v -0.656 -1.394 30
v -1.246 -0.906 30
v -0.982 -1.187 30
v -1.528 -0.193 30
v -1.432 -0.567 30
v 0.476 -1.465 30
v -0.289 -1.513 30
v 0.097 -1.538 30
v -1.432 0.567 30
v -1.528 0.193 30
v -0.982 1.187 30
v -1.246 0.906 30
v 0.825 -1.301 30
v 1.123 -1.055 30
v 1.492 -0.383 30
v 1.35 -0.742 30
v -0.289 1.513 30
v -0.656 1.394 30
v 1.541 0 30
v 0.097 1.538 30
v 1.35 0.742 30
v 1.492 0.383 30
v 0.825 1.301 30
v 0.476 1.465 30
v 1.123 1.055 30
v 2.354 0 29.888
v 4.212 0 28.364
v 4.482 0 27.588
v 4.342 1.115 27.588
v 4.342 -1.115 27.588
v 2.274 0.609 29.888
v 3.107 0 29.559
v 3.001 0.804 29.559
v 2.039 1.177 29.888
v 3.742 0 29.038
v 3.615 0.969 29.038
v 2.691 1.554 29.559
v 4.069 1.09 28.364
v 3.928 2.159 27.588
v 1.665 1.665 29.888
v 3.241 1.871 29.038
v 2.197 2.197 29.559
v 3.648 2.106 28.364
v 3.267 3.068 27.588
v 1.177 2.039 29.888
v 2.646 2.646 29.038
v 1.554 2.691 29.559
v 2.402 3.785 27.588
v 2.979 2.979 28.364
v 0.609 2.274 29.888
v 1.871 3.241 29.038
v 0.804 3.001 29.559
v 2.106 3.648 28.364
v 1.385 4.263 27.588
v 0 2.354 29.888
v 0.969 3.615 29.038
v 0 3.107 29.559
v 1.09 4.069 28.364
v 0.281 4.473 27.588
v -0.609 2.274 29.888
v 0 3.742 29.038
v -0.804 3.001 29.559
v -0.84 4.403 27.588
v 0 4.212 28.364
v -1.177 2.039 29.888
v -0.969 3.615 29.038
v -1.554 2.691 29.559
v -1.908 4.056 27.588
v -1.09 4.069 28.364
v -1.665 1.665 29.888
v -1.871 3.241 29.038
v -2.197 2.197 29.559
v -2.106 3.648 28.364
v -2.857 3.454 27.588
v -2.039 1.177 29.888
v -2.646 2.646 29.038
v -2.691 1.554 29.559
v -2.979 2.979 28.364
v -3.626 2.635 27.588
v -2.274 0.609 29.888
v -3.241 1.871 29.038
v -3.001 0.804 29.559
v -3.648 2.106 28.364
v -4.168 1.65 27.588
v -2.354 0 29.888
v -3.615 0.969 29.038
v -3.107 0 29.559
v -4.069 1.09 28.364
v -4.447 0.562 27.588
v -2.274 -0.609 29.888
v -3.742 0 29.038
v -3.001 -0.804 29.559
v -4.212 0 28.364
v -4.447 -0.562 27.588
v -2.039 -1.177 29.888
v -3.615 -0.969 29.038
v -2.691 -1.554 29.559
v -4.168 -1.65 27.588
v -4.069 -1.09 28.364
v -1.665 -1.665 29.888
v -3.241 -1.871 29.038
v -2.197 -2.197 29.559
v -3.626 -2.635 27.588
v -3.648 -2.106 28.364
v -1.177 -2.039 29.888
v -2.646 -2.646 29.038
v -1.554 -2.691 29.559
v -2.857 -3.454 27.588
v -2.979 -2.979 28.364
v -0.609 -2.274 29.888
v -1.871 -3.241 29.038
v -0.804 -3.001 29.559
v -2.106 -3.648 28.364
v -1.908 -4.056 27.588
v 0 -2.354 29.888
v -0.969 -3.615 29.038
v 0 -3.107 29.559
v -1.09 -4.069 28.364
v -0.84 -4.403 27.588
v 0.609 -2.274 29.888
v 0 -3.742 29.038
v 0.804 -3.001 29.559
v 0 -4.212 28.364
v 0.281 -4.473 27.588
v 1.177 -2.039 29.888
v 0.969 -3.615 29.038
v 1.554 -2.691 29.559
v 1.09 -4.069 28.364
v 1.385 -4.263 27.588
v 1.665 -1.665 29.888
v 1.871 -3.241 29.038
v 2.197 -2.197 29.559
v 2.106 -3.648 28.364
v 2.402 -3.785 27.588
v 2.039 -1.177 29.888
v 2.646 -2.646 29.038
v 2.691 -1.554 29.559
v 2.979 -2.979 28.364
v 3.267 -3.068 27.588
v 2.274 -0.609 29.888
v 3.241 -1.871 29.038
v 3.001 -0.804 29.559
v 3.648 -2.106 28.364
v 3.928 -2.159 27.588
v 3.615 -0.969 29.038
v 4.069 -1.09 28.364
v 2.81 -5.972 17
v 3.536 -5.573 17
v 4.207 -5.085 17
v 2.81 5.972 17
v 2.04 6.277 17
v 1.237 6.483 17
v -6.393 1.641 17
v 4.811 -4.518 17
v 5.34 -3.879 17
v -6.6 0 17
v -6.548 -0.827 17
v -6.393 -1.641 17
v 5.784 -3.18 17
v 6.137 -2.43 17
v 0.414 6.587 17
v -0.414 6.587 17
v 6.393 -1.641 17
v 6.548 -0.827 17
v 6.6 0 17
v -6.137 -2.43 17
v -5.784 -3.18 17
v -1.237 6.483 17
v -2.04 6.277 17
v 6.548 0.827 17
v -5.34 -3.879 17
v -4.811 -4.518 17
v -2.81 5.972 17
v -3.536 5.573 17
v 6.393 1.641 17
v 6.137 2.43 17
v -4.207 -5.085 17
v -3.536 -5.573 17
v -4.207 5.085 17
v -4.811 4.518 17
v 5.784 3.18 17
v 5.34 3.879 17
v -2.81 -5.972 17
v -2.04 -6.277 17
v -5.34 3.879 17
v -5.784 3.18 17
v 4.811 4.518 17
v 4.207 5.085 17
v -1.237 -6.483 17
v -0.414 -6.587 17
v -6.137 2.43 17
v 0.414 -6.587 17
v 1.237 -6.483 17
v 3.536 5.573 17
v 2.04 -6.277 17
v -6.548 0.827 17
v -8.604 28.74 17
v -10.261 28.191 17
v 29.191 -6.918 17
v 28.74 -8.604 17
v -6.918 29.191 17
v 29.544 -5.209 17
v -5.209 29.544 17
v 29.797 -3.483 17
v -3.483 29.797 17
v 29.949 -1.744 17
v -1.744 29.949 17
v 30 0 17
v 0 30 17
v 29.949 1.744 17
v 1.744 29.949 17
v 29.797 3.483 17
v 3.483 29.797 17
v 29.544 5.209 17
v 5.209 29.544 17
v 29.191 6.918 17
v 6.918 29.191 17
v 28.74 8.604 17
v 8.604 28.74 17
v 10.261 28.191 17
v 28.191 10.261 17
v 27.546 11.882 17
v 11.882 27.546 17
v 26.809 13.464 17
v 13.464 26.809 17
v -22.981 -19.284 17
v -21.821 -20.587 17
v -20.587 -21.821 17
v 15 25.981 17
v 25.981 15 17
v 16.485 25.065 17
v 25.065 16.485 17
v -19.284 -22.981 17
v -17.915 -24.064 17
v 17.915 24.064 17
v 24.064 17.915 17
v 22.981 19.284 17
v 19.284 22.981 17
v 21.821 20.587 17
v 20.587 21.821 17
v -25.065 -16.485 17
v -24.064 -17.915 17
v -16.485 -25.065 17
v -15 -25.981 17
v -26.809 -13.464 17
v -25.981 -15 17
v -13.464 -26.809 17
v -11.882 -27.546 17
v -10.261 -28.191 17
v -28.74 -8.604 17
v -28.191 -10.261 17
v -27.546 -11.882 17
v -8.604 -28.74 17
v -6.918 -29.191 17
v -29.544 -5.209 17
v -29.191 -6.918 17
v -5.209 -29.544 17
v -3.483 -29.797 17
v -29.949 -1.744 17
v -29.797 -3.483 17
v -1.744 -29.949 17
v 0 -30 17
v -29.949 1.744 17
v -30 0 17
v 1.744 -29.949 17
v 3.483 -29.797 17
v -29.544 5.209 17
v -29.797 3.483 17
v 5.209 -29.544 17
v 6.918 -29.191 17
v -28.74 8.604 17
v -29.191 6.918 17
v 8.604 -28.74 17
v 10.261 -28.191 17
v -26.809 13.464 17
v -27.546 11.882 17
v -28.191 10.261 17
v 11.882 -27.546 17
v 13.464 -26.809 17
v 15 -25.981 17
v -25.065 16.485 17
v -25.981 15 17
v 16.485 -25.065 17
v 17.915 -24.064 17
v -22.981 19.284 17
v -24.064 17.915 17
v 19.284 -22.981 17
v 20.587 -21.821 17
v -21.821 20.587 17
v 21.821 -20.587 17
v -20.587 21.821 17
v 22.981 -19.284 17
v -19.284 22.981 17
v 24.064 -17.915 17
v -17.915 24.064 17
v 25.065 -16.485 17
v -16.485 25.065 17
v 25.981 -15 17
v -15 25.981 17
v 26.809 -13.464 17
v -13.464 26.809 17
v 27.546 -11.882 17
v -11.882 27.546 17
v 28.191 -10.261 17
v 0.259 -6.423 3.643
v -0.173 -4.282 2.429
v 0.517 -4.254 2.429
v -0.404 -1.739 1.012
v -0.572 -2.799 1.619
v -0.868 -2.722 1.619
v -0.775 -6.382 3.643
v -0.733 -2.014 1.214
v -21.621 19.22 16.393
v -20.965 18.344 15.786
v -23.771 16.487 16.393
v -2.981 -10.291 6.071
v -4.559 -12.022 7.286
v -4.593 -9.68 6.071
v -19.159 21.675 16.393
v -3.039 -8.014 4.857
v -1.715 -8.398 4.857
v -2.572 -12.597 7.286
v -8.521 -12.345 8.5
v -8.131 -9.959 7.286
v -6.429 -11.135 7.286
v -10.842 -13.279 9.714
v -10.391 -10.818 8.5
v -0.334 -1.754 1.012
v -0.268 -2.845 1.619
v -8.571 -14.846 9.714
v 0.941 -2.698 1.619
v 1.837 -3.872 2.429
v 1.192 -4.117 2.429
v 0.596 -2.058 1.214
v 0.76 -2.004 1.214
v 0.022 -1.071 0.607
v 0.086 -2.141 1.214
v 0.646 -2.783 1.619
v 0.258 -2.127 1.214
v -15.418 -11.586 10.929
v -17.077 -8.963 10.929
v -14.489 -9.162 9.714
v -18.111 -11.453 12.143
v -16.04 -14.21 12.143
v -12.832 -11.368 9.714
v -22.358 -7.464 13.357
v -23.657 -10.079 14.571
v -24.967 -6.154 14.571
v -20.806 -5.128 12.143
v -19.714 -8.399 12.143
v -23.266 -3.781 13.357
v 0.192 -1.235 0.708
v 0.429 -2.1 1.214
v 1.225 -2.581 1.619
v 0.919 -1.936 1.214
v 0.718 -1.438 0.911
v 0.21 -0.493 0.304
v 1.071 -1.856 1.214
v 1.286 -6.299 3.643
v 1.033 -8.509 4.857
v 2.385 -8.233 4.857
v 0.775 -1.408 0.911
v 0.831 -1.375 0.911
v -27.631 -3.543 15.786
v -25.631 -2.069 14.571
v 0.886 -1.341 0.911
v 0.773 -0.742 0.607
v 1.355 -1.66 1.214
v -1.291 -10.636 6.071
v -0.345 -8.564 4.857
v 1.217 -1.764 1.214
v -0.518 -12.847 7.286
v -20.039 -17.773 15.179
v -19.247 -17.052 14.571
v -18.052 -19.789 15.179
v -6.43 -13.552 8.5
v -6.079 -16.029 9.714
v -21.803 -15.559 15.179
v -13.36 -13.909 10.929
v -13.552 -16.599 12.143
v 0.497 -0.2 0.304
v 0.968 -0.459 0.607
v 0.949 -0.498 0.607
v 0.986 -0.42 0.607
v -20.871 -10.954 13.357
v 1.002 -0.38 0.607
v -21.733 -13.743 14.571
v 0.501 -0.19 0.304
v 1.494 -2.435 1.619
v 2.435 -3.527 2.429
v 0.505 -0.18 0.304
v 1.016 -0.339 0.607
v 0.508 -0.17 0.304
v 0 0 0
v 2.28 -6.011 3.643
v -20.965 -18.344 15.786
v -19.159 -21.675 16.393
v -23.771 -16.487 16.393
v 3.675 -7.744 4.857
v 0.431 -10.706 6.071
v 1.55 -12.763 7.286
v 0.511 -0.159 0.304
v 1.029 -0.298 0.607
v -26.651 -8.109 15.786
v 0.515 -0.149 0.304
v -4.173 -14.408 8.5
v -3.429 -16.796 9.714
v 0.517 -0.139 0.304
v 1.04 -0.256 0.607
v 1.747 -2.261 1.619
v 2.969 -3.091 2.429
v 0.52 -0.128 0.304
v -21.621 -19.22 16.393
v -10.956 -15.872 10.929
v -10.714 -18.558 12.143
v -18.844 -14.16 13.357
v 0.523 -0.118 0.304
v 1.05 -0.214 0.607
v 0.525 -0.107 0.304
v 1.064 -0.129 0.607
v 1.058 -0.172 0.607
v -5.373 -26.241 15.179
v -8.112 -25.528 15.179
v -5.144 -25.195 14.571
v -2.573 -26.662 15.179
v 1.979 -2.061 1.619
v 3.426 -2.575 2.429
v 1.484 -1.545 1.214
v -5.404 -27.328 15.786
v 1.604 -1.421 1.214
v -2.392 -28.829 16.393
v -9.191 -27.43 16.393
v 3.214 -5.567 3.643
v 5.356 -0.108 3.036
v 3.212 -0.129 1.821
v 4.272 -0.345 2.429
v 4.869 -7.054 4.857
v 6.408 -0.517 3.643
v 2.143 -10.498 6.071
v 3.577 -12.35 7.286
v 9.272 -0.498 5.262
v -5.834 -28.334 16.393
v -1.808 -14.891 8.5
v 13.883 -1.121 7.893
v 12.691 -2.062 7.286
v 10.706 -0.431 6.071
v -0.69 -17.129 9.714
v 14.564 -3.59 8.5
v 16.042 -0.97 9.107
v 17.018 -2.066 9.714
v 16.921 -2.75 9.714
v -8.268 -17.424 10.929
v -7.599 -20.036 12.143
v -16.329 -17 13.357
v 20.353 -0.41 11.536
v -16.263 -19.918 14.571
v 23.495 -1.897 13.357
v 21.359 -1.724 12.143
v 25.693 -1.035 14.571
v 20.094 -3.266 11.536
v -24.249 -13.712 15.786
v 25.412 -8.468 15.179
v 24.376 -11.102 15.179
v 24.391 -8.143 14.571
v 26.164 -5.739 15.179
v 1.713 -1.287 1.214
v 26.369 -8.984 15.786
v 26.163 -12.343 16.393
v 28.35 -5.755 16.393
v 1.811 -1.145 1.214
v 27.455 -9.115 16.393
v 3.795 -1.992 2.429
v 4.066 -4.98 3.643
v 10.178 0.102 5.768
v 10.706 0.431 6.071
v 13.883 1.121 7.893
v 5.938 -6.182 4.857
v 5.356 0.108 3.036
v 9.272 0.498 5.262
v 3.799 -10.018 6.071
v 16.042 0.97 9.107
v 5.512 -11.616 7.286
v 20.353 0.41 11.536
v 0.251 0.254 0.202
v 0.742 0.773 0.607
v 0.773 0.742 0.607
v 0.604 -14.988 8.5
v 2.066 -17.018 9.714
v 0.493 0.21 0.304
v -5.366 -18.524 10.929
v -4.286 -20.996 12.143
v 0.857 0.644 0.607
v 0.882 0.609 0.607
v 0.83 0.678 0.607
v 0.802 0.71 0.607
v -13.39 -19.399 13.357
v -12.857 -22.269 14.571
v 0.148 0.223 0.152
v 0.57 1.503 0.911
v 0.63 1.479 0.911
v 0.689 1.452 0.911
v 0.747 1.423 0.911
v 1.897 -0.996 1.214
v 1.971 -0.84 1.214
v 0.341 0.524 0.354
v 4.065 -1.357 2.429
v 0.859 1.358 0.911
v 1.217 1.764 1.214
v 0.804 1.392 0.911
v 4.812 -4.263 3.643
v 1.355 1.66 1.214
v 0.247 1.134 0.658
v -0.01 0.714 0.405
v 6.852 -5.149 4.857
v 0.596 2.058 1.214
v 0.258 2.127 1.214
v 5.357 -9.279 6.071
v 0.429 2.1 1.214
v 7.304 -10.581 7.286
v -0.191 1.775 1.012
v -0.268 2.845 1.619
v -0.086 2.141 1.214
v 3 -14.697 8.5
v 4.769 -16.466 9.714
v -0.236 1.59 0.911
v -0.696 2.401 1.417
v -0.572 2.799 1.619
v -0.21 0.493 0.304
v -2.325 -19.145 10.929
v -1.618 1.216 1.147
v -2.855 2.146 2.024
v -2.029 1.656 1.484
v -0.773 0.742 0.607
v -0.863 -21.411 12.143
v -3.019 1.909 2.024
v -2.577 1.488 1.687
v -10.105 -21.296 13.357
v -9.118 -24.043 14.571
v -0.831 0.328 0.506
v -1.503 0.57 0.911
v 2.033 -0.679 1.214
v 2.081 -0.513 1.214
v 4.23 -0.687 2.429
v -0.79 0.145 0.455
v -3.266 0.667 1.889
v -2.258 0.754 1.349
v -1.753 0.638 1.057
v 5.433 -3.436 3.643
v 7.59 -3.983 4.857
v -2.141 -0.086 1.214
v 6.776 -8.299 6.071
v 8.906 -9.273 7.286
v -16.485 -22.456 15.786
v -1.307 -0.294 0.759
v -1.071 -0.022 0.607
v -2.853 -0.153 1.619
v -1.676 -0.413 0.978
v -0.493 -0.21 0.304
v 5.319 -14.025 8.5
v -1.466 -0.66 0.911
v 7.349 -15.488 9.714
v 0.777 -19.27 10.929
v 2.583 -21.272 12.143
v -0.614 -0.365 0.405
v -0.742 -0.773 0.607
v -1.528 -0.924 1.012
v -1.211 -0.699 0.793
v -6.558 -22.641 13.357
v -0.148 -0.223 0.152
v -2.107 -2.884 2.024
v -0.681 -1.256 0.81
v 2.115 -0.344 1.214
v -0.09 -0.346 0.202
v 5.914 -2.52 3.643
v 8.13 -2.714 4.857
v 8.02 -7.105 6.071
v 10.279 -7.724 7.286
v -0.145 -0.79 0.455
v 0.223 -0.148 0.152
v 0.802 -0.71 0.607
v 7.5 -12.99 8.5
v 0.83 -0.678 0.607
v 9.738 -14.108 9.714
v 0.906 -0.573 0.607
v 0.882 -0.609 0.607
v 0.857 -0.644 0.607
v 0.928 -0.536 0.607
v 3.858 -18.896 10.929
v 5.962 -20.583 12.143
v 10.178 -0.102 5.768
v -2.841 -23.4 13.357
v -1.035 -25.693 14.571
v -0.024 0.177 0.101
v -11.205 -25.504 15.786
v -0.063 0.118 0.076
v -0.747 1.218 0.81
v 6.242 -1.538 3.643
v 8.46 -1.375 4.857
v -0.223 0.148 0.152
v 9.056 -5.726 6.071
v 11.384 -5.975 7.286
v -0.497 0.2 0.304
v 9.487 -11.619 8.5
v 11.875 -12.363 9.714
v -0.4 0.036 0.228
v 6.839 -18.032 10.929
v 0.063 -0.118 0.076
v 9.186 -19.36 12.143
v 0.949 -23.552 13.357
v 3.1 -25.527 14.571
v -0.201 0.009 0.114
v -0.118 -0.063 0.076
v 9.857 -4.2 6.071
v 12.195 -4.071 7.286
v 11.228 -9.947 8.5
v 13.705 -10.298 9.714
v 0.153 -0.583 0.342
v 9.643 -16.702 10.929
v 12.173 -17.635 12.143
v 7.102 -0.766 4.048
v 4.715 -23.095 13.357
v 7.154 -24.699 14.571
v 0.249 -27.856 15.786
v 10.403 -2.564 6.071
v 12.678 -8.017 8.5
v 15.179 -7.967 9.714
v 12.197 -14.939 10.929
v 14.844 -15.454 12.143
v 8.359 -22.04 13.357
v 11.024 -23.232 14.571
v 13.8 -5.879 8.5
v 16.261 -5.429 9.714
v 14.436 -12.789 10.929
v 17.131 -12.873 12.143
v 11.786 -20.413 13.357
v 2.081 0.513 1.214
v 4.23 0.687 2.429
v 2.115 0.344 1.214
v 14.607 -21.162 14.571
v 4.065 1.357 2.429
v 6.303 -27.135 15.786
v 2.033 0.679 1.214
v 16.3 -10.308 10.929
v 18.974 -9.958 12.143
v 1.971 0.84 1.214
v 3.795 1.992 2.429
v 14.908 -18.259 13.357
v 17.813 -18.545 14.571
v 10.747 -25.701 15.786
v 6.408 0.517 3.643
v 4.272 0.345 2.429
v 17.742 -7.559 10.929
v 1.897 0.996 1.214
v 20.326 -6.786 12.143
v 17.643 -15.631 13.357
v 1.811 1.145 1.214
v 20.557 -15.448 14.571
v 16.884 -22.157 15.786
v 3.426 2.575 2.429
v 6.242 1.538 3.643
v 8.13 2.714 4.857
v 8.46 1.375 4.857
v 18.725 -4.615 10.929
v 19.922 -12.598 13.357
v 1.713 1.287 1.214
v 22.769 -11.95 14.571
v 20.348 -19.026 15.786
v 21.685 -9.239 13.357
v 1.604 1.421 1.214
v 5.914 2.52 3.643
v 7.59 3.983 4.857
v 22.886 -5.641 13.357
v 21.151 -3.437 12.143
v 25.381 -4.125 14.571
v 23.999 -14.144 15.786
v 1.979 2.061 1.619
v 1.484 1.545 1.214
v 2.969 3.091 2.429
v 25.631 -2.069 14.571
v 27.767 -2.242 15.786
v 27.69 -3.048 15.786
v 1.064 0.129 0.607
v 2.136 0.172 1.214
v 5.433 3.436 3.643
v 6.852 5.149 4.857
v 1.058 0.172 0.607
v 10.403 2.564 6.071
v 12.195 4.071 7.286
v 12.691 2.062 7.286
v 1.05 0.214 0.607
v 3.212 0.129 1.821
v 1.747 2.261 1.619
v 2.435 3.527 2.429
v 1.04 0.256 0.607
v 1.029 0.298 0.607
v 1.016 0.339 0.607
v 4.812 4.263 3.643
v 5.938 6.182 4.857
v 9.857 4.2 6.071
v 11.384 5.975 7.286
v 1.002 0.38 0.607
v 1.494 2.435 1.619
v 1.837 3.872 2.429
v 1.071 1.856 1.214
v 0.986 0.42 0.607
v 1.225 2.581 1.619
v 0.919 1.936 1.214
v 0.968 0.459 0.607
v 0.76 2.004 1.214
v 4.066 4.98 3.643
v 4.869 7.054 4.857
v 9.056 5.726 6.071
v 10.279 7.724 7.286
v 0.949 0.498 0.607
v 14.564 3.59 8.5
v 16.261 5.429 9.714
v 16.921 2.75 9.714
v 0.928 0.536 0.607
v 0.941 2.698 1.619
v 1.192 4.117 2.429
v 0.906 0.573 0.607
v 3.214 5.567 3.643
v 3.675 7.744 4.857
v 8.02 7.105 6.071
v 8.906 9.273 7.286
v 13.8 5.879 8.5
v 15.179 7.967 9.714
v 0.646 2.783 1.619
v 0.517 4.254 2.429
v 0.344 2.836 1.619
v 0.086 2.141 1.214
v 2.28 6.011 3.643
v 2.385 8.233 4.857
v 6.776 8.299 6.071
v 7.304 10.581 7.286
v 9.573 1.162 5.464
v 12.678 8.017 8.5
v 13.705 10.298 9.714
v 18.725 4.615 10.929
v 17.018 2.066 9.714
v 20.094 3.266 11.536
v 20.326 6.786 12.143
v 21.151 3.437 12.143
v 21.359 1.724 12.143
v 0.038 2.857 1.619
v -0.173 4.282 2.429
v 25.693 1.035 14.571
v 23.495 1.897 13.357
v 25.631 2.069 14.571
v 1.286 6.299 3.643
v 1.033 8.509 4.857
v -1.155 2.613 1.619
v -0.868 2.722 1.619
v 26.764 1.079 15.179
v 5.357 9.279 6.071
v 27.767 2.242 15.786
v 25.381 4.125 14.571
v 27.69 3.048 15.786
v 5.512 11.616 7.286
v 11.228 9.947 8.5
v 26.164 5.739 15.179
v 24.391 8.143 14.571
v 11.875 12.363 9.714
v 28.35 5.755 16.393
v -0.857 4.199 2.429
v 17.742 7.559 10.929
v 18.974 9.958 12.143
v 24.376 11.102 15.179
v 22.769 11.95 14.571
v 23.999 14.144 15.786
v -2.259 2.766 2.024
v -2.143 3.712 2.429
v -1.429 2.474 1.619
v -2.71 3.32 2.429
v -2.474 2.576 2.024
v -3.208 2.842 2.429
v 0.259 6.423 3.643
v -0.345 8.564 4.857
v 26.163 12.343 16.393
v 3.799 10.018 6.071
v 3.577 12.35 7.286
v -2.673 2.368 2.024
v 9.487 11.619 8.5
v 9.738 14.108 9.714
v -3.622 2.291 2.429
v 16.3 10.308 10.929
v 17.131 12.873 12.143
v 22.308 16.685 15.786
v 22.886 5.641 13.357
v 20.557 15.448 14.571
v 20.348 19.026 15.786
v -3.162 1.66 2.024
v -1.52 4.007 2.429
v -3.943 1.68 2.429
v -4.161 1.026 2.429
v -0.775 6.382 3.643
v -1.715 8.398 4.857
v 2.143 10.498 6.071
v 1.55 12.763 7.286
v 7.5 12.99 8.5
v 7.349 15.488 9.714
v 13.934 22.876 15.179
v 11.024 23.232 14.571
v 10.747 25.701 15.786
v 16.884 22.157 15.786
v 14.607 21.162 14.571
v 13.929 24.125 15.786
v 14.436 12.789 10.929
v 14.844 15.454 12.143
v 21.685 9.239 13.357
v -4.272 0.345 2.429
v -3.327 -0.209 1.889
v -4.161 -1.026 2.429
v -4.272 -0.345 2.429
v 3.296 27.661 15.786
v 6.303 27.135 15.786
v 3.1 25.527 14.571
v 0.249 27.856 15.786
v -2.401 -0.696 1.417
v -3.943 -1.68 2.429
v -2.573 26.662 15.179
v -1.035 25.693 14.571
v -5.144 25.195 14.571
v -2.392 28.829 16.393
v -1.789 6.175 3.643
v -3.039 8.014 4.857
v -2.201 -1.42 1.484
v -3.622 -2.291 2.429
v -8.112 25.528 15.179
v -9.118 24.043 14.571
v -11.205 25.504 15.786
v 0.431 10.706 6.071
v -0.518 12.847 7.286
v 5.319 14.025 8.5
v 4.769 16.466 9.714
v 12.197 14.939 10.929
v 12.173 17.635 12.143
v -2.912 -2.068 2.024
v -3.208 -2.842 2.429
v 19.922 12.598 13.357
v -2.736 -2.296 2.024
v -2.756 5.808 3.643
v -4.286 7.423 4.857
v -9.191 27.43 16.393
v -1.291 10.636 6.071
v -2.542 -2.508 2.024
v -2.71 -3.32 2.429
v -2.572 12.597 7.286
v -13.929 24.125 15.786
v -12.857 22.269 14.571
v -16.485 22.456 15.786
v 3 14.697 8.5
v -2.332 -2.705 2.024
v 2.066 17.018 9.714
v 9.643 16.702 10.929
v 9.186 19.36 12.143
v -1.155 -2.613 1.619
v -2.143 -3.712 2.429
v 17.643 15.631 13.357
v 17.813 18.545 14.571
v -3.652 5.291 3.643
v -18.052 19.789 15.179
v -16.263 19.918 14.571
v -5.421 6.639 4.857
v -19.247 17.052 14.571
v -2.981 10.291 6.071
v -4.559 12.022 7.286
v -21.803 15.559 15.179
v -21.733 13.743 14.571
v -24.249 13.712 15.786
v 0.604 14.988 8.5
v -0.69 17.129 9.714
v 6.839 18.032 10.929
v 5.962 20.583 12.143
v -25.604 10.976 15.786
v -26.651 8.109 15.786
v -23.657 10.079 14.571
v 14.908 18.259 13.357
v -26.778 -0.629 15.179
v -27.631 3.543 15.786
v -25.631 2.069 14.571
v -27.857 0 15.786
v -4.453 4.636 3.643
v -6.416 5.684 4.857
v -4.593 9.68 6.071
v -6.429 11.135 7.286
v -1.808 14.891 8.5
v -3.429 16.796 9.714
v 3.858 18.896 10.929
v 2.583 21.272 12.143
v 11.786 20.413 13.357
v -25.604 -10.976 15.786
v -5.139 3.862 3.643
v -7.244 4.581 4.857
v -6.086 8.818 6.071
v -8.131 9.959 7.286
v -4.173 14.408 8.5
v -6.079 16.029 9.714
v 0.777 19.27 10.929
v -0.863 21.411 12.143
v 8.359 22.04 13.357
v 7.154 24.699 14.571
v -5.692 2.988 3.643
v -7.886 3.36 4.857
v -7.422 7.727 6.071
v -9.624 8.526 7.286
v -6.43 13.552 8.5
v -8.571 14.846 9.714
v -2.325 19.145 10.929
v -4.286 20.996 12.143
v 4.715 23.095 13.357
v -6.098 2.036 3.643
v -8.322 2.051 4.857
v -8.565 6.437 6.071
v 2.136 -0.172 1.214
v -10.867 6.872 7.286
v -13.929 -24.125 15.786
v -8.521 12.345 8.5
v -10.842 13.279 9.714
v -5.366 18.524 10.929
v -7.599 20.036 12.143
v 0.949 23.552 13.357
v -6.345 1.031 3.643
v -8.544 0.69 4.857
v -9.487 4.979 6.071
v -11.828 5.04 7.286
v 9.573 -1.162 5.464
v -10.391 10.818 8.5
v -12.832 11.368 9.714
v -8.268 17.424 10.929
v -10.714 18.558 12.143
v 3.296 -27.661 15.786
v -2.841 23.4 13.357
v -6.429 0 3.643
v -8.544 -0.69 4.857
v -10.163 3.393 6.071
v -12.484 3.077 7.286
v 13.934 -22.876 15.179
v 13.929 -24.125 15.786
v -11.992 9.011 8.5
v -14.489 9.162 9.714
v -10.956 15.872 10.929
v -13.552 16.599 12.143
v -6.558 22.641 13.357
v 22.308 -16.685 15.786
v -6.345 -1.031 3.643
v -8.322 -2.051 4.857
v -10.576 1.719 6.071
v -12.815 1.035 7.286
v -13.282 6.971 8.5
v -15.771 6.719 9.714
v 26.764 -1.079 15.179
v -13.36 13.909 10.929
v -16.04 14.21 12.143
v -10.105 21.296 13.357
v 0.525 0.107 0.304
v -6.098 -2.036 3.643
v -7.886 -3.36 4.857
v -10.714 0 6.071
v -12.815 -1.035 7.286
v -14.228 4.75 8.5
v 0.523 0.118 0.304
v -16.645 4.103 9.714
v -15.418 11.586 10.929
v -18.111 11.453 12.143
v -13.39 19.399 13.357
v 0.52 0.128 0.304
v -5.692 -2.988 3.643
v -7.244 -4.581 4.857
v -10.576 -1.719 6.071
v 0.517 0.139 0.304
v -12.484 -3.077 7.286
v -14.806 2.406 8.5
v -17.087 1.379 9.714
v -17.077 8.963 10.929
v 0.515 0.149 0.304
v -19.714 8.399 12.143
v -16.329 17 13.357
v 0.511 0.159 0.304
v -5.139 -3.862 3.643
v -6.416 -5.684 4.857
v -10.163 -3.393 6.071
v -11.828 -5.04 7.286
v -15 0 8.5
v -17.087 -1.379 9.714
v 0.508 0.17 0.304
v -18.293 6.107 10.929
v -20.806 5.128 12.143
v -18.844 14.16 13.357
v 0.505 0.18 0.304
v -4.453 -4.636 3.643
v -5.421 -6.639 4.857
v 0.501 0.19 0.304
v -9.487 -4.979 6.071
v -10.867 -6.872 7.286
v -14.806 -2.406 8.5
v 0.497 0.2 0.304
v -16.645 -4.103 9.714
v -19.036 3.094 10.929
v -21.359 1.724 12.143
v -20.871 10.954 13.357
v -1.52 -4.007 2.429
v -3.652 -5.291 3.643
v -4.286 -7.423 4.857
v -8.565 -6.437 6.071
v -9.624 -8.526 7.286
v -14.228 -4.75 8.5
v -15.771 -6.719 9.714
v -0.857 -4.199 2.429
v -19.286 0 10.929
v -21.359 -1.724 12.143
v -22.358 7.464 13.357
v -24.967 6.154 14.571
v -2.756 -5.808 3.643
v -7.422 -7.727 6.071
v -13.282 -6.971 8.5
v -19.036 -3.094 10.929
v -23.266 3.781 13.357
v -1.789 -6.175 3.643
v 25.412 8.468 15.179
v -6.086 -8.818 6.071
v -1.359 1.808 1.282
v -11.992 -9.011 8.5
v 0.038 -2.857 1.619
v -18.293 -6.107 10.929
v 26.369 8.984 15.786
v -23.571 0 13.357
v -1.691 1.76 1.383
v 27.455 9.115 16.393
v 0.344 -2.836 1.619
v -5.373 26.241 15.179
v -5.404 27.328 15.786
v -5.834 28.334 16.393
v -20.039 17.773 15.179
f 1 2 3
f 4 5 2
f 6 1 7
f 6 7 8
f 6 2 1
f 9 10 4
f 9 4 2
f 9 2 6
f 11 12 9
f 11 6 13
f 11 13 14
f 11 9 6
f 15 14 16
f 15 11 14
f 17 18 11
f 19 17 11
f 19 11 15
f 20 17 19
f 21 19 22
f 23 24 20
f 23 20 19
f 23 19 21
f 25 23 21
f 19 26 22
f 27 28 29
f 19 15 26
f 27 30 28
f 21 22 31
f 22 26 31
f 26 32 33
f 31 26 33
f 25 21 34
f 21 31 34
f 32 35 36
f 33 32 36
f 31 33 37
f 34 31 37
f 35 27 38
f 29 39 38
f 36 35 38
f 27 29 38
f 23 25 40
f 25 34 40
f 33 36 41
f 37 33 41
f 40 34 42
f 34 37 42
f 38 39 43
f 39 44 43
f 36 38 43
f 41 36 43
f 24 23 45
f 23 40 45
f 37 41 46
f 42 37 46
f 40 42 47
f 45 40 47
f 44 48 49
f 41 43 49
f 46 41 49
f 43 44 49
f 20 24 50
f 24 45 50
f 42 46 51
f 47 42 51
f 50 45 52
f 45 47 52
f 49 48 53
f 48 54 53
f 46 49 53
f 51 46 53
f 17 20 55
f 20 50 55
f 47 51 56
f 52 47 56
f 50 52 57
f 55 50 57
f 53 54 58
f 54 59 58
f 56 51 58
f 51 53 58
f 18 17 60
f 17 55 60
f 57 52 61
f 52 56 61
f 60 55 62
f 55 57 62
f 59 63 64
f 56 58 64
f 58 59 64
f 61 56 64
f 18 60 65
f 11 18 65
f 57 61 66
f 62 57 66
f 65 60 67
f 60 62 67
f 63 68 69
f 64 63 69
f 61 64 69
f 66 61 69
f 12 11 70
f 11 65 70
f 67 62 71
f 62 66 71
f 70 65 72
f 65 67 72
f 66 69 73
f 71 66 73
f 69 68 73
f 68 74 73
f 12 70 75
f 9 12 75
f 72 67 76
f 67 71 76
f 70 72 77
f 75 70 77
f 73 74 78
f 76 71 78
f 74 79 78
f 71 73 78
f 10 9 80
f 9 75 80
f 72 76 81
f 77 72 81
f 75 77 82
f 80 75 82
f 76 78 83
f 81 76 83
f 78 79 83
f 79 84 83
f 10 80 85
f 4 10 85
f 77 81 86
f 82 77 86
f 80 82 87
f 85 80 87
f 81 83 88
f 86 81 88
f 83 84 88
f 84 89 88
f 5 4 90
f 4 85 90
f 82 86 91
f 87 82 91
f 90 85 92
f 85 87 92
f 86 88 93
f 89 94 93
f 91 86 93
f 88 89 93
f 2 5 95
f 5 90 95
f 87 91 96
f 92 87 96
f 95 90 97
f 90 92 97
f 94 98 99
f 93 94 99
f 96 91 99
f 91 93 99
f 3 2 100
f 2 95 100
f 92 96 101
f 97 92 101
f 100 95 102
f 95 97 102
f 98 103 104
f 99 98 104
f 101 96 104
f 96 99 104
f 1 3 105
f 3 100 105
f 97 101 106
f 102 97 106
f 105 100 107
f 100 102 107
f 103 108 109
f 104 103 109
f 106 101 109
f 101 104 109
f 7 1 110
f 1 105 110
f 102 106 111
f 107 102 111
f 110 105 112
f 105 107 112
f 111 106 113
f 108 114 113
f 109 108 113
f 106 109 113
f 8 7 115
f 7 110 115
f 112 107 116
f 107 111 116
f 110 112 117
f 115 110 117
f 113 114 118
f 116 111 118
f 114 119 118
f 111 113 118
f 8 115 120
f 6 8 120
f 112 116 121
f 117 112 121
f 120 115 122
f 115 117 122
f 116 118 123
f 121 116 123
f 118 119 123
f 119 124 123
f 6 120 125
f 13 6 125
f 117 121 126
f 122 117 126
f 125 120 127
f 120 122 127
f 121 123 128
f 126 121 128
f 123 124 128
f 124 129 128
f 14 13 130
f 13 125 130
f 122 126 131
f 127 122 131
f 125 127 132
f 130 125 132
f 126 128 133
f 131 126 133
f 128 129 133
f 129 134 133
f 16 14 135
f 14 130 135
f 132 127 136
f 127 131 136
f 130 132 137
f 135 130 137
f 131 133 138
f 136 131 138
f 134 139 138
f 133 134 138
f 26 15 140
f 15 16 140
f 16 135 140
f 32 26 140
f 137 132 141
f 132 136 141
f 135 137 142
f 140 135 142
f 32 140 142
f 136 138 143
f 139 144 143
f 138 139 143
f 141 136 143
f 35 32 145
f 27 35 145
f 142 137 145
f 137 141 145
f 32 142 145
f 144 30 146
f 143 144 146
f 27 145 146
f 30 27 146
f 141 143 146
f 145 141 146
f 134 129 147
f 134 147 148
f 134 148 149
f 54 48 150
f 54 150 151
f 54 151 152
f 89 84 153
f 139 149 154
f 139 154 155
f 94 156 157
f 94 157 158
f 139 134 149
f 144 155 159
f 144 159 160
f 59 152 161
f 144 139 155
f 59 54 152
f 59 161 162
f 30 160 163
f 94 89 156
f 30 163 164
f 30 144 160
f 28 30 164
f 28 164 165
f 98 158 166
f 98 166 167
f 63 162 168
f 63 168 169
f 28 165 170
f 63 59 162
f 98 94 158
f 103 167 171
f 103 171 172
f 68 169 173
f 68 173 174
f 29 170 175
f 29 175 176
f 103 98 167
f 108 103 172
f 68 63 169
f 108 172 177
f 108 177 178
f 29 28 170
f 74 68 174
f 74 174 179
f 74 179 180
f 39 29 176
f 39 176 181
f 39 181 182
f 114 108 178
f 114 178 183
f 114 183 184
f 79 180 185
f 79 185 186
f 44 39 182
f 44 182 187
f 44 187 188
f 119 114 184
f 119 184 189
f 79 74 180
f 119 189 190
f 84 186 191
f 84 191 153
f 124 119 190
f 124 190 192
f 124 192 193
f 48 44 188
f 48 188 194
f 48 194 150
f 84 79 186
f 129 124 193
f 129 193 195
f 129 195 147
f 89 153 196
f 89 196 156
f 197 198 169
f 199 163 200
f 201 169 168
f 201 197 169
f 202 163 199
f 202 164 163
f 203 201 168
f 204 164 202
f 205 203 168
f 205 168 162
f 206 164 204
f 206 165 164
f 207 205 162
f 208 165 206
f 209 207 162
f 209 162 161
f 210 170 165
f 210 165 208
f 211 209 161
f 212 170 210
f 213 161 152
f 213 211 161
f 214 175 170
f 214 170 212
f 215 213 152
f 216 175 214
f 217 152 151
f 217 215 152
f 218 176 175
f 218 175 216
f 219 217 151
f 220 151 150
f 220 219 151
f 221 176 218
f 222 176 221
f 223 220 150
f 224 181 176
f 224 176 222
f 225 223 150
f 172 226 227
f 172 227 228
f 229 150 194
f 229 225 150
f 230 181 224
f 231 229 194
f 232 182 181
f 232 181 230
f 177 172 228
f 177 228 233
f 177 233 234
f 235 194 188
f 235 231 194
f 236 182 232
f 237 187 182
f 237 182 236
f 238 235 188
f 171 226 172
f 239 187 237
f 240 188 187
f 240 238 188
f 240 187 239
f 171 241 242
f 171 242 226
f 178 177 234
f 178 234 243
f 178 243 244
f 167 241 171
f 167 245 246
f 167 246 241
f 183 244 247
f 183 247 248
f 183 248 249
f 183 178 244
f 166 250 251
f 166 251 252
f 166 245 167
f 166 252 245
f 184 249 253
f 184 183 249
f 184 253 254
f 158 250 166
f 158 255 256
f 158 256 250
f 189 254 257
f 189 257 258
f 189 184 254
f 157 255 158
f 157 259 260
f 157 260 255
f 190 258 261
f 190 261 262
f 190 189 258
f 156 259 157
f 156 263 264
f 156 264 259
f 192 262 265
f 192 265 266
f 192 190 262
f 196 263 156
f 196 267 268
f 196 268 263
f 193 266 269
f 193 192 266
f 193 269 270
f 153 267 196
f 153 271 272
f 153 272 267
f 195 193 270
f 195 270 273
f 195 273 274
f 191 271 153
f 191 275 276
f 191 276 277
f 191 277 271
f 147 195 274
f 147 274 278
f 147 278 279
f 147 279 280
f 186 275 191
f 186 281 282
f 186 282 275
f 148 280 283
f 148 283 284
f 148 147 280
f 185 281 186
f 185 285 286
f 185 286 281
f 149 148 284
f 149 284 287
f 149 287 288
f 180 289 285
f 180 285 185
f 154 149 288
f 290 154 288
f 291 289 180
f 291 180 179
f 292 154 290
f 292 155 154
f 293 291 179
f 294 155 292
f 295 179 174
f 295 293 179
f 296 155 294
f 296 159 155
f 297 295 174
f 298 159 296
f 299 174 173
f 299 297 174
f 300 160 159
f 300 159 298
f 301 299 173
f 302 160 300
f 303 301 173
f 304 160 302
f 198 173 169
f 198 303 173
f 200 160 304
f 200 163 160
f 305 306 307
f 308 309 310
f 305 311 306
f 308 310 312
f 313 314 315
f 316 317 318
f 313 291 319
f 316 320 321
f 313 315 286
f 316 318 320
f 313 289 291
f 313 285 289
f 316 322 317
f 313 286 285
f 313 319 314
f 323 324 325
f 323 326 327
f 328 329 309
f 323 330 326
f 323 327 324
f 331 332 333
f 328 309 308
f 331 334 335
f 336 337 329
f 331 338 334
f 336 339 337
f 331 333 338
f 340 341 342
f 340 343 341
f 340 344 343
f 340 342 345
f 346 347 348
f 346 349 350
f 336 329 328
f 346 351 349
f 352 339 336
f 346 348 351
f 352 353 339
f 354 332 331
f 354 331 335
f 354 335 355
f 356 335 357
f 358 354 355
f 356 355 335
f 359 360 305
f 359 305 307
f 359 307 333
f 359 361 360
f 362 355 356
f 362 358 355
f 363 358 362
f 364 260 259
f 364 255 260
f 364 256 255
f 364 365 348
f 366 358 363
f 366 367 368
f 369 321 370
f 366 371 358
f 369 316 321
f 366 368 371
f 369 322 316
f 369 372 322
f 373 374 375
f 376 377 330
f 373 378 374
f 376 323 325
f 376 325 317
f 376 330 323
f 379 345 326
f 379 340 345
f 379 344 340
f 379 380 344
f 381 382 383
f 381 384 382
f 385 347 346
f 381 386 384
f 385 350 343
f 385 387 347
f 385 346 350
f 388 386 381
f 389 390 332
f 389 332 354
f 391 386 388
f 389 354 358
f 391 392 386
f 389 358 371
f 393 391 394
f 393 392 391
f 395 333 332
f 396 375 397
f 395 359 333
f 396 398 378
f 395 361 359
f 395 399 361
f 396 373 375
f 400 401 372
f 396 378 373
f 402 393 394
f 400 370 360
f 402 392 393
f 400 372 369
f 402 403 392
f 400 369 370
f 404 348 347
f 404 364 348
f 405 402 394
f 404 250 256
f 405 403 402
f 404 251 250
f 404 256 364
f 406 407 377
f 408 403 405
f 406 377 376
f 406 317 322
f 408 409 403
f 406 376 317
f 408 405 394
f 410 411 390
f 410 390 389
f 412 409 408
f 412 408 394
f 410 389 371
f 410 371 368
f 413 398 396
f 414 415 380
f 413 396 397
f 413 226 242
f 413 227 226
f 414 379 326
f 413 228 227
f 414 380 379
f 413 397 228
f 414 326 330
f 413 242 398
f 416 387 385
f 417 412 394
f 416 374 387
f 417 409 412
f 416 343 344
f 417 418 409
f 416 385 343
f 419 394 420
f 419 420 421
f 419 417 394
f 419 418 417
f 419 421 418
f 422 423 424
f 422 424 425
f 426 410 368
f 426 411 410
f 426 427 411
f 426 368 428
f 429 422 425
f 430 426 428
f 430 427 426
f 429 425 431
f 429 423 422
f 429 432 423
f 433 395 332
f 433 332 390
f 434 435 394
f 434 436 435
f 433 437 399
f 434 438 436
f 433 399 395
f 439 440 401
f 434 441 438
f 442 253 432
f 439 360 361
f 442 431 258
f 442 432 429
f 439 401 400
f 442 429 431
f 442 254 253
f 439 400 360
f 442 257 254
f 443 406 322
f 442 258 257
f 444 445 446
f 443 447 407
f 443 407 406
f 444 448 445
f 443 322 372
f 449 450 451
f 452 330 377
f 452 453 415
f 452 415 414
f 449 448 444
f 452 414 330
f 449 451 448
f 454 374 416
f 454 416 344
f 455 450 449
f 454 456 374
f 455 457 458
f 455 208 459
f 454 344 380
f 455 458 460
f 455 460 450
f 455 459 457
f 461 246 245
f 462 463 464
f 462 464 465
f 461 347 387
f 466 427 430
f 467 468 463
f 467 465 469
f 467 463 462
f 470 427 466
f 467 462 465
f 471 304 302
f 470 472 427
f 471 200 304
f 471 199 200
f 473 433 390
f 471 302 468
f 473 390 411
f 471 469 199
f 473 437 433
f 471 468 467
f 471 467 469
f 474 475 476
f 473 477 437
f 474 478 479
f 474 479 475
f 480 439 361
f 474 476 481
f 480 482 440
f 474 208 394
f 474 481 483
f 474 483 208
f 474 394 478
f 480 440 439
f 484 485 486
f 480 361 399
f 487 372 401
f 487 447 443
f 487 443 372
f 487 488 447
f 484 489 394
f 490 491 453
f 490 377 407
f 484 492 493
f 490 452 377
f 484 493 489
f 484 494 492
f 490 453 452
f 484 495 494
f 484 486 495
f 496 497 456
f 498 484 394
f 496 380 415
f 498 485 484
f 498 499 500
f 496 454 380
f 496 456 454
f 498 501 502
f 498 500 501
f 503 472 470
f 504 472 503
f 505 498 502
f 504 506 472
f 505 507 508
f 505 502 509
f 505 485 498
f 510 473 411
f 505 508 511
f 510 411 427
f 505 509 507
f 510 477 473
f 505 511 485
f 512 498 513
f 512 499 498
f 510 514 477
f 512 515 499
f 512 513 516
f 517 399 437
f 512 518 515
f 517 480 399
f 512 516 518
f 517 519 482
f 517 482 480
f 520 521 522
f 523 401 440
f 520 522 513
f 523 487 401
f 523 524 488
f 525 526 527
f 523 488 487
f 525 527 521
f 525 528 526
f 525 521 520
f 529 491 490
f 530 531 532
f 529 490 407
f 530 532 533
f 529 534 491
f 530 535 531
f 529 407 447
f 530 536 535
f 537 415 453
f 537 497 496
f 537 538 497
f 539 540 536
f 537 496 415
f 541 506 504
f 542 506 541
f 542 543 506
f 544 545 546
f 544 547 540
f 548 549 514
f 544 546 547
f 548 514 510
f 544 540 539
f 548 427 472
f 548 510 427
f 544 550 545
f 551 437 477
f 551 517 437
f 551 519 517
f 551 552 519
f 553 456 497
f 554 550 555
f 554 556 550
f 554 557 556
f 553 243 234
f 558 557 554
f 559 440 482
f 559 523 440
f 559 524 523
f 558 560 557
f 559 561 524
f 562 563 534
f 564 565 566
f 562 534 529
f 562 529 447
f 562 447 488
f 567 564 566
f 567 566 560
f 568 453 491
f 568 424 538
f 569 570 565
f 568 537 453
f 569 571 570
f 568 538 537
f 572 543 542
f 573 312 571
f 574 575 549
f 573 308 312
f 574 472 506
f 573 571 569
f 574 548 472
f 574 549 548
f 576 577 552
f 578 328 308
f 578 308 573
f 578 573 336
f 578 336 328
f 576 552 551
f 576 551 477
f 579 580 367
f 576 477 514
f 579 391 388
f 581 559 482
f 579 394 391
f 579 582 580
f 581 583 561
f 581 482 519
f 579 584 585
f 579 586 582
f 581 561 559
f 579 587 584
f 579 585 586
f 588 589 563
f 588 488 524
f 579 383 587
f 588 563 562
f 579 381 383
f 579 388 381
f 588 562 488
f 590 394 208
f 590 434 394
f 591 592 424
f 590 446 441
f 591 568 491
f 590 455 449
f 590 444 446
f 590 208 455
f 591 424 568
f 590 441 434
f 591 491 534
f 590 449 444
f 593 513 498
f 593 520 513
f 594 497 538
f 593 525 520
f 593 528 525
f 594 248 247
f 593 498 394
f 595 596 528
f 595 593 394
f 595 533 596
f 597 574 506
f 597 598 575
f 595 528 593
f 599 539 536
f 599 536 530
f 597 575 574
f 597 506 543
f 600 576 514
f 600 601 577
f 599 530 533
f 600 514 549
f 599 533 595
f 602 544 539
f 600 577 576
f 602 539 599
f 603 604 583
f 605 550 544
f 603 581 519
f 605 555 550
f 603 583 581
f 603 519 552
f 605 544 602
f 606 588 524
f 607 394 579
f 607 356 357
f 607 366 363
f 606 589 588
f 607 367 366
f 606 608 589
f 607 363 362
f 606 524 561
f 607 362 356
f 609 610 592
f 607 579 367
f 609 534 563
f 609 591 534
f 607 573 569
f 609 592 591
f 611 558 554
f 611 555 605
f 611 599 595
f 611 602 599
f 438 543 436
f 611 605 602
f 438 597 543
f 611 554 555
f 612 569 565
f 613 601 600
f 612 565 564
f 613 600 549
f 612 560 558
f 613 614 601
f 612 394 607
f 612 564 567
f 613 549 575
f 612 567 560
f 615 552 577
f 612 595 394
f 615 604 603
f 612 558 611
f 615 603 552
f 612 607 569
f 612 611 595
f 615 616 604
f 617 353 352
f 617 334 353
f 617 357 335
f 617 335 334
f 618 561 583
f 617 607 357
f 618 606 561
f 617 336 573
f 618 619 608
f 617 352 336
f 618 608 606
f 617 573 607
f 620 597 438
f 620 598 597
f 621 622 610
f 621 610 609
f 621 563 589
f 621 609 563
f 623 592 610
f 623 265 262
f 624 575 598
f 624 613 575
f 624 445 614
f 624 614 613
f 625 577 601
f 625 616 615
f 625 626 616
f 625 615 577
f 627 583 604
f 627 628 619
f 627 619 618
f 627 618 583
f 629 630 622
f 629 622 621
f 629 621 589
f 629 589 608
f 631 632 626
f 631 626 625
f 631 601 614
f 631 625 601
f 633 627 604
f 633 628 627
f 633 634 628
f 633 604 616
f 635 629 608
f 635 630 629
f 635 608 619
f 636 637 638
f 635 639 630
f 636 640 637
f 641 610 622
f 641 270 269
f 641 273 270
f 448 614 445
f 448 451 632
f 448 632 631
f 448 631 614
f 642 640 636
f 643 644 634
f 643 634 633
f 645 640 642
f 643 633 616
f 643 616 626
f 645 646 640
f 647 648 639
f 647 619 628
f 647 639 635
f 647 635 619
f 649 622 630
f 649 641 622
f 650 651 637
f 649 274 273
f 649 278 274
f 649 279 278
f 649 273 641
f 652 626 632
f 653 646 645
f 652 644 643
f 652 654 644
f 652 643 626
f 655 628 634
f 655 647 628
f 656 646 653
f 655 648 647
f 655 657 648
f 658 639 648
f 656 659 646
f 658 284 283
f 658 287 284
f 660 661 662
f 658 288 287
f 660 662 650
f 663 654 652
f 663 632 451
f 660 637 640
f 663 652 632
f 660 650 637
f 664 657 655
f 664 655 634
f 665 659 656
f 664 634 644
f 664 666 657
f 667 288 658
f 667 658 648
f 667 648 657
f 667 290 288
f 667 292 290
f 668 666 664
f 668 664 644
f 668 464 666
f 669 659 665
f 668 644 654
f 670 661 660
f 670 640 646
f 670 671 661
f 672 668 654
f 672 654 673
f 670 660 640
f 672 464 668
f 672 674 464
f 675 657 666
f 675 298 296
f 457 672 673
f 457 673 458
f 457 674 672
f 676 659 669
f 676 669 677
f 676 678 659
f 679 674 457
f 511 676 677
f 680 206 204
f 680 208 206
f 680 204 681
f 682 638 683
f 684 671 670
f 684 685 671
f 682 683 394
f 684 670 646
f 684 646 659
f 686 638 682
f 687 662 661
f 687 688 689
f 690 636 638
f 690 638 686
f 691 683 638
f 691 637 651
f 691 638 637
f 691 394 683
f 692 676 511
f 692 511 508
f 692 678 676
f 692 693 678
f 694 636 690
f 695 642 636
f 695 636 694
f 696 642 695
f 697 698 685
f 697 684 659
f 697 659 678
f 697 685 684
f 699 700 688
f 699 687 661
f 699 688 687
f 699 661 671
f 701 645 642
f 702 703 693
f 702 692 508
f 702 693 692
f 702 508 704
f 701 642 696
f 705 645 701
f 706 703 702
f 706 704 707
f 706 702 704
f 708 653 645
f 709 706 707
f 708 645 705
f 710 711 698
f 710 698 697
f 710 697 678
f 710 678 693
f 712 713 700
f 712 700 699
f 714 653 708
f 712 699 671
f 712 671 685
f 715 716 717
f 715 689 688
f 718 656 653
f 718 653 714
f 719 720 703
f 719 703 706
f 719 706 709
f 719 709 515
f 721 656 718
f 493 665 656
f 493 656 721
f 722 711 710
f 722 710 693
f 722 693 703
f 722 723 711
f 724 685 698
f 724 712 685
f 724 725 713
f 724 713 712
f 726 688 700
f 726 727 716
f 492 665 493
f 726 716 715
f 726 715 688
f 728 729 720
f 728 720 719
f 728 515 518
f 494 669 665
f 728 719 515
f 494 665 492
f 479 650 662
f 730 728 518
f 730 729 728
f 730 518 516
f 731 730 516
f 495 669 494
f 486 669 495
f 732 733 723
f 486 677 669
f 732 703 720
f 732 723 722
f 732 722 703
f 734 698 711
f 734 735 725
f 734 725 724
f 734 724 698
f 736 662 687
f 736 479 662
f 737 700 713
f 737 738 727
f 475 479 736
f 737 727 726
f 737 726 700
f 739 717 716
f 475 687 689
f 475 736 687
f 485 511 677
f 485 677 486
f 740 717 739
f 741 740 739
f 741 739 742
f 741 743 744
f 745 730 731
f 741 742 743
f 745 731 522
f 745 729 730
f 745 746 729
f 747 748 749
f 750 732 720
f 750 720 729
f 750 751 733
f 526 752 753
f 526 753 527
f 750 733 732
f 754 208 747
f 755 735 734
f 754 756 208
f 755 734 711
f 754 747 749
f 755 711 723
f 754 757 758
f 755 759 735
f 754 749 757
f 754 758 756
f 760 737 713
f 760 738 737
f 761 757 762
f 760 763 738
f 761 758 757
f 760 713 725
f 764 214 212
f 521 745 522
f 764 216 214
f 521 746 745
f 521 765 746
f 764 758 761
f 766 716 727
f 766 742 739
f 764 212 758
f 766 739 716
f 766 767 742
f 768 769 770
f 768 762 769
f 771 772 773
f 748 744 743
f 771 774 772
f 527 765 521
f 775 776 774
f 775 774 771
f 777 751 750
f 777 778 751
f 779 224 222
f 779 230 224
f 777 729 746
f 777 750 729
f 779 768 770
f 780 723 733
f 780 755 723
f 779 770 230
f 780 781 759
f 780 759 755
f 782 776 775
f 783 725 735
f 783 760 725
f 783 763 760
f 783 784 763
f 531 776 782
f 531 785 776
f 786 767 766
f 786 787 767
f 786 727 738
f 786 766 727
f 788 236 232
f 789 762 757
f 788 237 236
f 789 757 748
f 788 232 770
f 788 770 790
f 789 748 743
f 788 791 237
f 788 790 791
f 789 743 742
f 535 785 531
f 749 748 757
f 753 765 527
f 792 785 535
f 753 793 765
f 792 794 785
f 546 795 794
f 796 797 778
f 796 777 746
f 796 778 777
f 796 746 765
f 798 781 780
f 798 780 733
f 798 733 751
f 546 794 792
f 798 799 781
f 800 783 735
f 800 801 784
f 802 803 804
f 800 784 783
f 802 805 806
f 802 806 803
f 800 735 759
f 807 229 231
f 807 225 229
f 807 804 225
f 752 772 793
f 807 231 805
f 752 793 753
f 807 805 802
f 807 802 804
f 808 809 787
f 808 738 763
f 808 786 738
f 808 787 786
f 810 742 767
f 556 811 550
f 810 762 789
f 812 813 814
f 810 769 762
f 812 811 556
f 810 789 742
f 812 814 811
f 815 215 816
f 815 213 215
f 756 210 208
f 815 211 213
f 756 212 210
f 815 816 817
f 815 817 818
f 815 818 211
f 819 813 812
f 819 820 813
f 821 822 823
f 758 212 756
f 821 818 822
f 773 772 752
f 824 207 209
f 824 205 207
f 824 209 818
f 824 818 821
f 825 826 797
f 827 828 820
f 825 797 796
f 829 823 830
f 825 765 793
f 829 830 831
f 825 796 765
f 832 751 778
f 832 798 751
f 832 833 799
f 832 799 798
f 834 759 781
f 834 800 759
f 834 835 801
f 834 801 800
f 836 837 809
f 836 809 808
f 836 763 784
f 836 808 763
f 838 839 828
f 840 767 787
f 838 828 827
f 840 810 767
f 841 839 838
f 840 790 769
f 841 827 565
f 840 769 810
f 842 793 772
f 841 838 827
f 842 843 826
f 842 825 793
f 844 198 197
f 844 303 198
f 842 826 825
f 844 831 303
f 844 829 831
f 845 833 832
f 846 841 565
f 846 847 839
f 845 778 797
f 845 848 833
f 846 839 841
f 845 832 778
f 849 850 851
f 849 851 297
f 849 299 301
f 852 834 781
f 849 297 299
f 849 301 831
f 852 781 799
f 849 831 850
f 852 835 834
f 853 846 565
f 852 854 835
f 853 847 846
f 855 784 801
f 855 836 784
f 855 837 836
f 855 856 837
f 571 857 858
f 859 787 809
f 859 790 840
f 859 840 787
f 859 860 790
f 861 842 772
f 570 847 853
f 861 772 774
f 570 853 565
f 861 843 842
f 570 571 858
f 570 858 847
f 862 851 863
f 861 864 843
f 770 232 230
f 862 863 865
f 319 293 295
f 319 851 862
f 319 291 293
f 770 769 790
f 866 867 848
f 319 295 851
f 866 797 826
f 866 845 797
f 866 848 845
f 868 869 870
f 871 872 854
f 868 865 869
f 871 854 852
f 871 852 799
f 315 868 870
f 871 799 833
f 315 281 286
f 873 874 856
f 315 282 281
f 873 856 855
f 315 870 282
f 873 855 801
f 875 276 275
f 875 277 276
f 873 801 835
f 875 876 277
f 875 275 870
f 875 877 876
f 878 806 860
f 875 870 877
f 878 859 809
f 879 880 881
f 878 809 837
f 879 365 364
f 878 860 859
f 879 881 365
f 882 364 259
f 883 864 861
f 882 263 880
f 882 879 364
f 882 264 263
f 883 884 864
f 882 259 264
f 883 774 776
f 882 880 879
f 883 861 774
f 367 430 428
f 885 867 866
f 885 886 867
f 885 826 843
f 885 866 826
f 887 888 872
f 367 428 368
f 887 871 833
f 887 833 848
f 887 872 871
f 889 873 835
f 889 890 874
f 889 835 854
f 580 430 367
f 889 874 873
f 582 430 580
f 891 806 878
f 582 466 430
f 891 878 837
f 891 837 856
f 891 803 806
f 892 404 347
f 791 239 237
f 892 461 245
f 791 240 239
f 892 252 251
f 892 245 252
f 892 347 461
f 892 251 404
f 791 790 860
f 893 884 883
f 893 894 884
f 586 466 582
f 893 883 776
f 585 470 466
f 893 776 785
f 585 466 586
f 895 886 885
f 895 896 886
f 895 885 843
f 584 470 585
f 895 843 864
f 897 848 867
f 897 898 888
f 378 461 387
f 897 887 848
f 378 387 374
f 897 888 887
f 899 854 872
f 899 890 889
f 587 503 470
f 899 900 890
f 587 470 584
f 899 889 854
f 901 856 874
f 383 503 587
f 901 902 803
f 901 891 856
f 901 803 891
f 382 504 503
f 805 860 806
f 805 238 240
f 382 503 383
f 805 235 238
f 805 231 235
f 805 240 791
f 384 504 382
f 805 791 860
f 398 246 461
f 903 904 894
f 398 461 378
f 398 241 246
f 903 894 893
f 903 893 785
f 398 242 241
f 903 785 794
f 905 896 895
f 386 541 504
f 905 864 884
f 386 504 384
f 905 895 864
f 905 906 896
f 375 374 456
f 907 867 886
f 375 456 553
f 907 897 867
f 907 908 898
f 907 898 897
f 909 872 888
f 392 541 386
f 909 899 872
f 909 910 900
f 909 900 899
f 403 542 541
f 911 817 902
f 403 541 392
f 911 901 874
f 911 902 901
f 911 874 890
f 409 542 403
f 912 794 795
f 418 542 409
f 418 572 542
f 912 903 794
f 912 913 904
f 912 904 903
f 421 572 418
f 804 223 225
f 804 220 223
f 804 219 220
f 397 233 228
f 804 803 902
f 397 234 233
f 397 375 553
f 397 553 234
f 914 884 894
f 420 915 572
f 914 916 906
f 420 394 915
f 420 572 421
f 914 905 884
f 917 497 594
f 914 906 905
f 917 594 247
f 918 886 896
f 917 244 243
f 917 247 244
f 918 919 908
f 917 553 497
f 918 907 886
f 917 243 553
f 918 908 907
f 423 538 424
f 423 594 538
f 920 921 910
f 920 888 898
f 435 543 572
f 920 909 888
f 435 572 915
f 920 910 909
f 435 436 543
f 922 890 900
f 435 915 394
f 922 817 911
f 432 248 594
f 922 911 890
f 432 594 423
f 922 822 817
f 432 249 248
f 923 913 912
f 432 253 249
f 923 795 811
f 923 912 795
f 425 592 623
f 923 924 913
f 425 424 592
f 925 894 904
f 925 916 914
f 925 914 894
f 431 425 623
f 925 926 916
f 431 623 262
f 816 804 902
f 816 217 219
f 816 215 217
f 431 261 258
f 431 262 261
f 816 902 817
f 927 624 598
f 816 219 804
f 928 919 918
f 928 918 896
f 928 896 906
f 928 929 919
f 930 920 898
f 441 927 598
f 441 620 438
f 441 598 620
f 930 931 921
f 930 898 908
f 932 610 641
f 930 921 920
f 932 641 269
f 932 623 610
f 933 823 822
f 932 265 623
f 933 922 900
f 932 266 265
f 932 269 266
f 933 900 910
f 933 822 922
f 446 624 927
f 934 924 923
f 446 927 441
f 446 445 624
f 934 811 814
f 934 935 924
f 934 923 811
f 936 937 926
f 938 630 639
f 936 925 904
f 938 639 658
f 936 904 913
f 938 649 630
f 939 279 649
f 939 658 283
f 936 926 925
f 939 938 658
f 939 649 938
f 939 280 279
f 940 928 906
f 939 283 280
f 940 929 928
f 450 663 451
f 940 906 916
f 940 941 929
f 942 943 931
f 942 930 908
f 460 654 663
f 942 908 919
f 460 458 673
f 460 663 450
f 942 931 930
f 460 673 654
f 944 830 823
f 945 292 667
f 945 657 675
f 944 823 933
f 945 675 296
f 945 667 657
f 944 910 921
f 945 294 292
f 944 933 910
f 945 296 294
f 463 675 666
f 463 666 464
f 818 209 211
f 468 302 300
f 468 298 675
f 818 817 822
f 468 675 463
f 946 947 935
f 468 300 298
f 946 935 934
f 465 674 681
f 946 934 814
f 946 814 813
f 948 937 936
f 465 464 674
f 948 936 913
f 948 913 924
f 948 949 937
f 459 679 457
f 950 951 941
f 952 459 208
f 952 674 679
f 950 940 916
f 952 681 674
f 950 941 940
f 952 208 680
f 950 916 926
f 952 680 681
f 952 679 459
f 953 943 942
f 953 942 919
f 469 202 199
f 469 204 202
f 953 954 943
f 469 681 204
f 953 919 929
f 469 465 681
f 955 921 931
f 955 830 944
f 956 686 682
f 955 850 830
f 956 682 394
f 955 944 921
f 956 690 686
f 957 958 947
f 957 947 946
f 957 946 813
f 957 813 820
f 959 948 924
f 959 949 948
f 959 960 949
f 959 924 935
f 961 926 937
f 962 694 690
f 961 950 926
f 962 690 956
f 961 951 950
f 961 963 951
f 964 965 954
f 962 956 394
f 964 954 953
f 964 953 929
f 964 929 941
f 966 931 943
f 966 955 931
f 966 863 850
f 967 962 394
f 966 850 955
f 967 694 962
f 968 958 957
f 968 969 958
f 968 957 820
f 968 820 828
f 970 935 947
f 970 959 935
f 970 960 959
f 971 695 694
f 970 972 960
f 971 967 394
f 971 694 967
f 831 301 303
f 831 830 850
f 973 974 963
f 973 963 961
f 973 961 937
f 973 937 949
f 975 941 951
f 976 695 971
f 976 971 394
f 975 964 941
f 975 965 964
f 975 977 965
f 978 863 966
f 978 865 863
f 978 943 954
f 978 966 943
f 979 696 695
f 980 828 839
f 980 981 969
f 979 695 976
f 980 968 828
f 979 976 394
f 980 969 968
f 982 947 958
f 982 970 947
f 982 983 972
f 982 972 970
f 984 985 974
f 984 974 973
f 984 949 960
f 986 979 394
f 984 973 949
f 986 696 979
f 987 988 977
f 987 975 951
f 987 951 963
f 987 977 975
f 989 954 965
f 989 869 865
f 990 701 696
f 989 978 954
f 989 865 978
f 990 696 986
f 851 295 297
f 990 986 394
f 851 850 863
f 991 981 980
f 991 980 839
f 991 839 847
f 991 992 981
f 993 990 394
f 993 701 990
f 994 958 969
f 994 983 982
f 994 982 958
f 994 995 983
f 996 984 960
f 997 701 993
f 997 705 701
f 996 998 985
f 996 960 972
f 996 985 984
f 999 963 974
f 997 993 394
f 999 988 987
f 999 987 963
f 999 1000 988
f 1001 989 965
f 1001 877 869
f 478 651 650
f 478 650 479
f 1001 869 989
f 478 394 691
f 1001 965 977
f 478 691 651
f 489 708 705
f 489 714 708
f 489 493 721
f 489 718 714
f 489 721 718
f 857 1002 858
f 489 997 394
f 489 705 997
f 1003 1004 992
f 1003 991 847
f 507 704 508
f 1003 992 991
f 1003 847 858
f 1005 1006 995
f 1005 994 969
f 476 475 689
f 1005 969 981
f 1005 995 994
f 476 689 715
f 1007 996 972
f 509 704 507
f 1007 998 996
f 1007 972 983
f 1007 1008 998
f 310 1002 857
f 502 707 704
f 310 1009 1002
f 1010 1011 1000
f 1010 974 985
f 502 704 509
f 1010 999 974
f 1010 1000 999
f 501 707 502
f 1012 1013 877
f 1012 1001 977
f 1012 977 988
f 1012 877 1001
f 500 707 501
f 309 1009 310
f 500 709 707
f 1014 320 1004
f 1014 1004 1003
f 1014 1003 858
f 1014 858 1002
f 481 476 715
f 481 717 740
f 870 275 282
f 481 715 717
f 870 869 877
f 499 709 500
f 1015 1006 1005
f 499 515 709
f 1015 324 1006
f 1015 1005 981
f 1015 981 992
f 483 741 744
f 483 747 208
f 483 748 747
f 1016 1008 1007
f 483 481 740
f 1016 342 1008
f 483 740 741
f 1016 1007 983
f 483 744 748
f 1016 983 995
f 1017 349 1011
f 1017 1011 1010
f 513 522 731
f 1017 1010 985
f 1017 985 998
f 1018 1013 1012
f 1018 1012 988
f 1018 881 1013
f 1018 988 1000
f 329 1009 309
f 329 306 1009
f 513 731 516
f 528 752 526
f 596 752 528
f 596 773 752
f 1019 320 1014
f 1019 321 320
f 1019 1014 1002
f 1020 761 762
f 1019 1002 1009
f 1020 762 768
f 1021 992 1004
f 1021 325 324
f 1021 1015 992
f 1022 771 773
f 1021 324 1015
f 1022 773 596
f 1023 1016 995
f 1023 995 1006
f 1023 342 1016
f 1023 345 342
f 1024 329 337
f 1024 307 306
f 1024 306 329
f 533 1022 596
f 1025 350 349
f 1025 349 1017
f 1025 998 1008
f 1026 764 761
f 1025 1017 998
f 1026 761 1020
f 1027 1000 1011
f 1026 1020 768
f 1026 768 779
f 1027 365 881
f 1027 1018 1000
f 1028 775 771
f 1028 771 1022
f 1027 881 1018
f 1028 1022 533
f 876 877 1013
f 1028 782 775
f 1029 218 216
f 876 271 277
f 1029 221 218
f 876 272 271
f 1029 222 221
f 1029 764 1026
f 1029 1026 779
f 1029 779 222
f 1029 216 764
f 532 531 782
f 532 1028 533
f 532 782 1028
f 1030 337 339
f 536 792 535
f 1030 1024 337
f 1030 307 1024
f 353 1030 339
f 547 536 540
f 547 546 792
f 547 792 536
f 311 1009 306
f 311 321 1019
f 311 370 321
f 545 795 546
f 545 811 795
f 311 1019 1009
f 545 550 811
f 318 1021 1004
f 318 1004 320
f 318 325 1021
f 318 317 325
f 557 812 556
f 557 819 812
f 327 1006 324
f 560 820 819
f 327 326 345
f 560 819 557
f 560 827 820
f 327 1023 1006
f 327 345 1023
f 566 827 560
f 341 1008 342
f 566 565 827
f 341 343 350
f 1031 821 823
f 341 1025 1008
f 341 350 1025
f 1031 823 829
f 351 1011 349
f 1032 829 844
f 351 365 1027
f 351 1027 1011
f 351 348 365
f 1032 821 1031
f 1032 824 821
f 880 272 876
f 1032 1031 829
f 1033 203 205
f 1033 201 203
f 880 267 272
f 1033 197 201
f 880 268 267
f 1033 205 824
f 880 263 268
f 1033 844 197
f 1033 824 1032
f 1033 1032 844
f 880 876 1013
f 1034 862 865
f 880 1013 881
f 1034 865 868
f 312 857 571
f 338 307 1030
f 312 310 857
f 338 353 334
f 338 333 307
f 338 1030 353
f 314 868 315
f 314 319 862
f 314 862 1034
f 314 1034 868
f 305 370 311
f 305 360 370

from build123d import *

# Parameters (mm, degrees)
FILLET_R = 3


with BuildPart() as cono:
    # Cone → Cone (revolve)
    with BuildSketch(Plane.XZ):
        Polygon((0, 0), (30, 17), (0, 17), align=None)
    revolve(axis=Axis((0, 0, 0), (0, 0, 1)))


with BuildPart() as fillet_body:
    # Cone001 → Cone001 (revolve)
    with BuildSketch(Plane(origin=(0, 0, 15), x_dir=(1, 0, 0), z_dir=(0, -1, 0))):
        Polygon((0, 0), (7, 0), (4, 15), (0, 15), align=None)
    revolve(axis=Axis((0, 0, 15), (0, 0, 1)))

    # Fusion: union Cono
    add(cono.part)

    # Fillet
    fillet_edges = [fillet_body.edges().sort_by_distance(p)[0] for p in [
        (-4, 0, 30),
    ]]
    fillet(fillet_edges, radius=FILLET_R)


solid = fillet_body.part
